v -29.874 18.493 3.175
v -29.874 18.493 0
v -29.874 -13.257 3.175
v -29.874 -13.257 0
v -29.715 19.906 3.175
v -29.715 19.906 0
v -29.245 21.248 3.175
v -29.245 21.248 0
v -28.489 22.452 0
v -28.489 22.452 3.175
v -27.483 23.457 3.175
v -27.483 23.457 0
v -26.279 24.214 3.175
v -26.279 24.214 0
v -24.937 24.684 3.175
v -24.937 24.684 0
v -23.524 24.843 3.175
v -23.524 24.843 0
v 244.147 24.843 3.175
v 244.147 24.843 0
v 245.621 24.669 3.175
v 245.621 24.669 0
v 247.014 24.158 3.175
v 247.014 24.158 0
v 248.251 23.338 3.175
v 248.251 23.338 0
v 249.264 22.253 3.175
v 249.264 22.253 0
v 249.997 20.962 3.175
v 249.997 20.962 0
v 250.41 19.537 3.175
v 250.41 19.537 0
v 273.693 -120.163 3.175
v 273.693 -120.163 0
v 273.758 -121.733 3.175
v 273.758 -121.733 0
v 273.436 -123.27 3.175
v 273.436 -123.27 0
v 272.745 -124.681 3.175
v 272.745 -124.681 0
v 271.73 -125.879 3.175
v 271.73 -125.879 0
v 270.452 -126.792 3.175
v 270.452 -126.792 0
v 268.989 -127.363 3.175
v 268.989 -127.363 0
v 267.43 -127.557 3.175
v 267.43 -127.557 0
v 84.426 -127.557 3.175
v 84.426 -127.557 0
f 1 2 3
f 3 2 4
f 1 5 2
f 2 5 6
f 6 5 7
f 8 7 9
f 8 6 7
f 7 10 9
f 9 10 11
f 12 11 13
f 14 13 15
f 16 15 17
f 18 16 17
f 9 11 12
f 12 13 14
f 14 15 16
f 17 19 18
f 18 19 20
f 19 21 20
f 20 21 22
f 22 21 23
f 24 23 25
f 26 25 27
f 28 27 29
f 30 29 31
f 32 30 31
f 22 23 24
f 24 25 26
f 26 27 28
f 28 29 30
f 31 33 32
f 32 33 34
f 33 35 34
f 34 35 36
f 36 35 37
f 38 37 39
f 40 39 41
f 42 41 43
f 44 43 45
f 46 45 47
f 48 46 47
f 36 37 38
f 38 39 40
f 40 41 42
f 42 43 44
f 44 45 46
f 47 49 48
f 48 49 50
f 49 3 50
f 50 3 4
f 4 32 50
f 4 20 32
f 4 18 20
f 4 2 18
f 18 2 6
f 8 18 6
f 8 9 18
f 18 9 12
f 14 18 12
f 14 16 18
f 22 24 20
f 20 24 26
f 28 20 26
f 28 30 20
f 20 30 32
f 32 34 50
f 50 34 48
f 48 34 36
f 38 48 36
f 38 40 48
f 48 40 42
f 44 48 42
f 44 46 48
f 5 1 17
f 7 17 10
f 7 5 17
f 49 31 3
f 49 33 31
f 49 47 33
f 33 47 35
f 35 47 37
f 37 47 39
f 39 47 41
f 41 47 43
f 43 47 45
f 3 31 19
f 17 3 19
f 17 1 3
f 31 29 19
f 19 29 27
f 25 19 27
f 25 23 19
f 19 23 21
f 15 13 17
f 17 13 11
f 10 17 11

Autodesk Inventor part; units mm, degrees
ref_plane "YZ Plane" through (0, 0, 0) normal (1, 0, 0) x (0, 1, 0)
ref_plane "XZ Plane" through (0, 0, 0) normal (0, 1, 0) x (-1, 0, 0)
ref_plane "XY Plane" through (0, 0, 0) normal (0, 0, 1) x (1, 0, 0)
sketch "Sketch1" plane through (0, 0, 0) normal (0, 0, 1) x (1, 0, 0)
  line L0 (-23.5242, 24.8428) -> (244.1465, 24.8428)
  line L1 (274.9258, 24.8428) -> (274.9258, -127.5572)
  line L2 (267.4299, -127.5572) -> (-29.8742, -127.5572)
  line L3 (-29.8742, -127.5572) -> (-29.8742, 18.4928)
  line L4 (250.4101, 19.5367) -> (273.6935, -120.1633)
  line L5 (-29.8742, -13.2572) -> (84.4258, -127.5572)
  arc A0 (-23.5242, 24.8428) -> (-29.8742, 18.4928) centre (-23.5242, 18.4928) ccw
  arc A1 (267.4299, -127.5572) -> (273.6935, -120.1633) centre (267.4299, -121.2072) ccw
  arc A2 (250.4101, 19.5367) -> (244.1465, 24.8428) centre (244.1465, 18.4928) ccw
  point P0 (-29.8742, 24.8428)
  point P1 (249.5258, 24.8428)
  dimension "d0" = 304.8
  dimension "d1" = 152.4
  dimension "d2" = 25.4
  dimension "d3" = 38.1
  dimension "d4" = 190.5
  dimension "d5" = 6.35
  dimension "d6" = 6.35
extrude "Extrusion1" add sketch "Sketch1" along normal blind 3.175 contours L0 A2 L4 A1 L2 L5 L3 A0
properties part number "FE-00004-09"
